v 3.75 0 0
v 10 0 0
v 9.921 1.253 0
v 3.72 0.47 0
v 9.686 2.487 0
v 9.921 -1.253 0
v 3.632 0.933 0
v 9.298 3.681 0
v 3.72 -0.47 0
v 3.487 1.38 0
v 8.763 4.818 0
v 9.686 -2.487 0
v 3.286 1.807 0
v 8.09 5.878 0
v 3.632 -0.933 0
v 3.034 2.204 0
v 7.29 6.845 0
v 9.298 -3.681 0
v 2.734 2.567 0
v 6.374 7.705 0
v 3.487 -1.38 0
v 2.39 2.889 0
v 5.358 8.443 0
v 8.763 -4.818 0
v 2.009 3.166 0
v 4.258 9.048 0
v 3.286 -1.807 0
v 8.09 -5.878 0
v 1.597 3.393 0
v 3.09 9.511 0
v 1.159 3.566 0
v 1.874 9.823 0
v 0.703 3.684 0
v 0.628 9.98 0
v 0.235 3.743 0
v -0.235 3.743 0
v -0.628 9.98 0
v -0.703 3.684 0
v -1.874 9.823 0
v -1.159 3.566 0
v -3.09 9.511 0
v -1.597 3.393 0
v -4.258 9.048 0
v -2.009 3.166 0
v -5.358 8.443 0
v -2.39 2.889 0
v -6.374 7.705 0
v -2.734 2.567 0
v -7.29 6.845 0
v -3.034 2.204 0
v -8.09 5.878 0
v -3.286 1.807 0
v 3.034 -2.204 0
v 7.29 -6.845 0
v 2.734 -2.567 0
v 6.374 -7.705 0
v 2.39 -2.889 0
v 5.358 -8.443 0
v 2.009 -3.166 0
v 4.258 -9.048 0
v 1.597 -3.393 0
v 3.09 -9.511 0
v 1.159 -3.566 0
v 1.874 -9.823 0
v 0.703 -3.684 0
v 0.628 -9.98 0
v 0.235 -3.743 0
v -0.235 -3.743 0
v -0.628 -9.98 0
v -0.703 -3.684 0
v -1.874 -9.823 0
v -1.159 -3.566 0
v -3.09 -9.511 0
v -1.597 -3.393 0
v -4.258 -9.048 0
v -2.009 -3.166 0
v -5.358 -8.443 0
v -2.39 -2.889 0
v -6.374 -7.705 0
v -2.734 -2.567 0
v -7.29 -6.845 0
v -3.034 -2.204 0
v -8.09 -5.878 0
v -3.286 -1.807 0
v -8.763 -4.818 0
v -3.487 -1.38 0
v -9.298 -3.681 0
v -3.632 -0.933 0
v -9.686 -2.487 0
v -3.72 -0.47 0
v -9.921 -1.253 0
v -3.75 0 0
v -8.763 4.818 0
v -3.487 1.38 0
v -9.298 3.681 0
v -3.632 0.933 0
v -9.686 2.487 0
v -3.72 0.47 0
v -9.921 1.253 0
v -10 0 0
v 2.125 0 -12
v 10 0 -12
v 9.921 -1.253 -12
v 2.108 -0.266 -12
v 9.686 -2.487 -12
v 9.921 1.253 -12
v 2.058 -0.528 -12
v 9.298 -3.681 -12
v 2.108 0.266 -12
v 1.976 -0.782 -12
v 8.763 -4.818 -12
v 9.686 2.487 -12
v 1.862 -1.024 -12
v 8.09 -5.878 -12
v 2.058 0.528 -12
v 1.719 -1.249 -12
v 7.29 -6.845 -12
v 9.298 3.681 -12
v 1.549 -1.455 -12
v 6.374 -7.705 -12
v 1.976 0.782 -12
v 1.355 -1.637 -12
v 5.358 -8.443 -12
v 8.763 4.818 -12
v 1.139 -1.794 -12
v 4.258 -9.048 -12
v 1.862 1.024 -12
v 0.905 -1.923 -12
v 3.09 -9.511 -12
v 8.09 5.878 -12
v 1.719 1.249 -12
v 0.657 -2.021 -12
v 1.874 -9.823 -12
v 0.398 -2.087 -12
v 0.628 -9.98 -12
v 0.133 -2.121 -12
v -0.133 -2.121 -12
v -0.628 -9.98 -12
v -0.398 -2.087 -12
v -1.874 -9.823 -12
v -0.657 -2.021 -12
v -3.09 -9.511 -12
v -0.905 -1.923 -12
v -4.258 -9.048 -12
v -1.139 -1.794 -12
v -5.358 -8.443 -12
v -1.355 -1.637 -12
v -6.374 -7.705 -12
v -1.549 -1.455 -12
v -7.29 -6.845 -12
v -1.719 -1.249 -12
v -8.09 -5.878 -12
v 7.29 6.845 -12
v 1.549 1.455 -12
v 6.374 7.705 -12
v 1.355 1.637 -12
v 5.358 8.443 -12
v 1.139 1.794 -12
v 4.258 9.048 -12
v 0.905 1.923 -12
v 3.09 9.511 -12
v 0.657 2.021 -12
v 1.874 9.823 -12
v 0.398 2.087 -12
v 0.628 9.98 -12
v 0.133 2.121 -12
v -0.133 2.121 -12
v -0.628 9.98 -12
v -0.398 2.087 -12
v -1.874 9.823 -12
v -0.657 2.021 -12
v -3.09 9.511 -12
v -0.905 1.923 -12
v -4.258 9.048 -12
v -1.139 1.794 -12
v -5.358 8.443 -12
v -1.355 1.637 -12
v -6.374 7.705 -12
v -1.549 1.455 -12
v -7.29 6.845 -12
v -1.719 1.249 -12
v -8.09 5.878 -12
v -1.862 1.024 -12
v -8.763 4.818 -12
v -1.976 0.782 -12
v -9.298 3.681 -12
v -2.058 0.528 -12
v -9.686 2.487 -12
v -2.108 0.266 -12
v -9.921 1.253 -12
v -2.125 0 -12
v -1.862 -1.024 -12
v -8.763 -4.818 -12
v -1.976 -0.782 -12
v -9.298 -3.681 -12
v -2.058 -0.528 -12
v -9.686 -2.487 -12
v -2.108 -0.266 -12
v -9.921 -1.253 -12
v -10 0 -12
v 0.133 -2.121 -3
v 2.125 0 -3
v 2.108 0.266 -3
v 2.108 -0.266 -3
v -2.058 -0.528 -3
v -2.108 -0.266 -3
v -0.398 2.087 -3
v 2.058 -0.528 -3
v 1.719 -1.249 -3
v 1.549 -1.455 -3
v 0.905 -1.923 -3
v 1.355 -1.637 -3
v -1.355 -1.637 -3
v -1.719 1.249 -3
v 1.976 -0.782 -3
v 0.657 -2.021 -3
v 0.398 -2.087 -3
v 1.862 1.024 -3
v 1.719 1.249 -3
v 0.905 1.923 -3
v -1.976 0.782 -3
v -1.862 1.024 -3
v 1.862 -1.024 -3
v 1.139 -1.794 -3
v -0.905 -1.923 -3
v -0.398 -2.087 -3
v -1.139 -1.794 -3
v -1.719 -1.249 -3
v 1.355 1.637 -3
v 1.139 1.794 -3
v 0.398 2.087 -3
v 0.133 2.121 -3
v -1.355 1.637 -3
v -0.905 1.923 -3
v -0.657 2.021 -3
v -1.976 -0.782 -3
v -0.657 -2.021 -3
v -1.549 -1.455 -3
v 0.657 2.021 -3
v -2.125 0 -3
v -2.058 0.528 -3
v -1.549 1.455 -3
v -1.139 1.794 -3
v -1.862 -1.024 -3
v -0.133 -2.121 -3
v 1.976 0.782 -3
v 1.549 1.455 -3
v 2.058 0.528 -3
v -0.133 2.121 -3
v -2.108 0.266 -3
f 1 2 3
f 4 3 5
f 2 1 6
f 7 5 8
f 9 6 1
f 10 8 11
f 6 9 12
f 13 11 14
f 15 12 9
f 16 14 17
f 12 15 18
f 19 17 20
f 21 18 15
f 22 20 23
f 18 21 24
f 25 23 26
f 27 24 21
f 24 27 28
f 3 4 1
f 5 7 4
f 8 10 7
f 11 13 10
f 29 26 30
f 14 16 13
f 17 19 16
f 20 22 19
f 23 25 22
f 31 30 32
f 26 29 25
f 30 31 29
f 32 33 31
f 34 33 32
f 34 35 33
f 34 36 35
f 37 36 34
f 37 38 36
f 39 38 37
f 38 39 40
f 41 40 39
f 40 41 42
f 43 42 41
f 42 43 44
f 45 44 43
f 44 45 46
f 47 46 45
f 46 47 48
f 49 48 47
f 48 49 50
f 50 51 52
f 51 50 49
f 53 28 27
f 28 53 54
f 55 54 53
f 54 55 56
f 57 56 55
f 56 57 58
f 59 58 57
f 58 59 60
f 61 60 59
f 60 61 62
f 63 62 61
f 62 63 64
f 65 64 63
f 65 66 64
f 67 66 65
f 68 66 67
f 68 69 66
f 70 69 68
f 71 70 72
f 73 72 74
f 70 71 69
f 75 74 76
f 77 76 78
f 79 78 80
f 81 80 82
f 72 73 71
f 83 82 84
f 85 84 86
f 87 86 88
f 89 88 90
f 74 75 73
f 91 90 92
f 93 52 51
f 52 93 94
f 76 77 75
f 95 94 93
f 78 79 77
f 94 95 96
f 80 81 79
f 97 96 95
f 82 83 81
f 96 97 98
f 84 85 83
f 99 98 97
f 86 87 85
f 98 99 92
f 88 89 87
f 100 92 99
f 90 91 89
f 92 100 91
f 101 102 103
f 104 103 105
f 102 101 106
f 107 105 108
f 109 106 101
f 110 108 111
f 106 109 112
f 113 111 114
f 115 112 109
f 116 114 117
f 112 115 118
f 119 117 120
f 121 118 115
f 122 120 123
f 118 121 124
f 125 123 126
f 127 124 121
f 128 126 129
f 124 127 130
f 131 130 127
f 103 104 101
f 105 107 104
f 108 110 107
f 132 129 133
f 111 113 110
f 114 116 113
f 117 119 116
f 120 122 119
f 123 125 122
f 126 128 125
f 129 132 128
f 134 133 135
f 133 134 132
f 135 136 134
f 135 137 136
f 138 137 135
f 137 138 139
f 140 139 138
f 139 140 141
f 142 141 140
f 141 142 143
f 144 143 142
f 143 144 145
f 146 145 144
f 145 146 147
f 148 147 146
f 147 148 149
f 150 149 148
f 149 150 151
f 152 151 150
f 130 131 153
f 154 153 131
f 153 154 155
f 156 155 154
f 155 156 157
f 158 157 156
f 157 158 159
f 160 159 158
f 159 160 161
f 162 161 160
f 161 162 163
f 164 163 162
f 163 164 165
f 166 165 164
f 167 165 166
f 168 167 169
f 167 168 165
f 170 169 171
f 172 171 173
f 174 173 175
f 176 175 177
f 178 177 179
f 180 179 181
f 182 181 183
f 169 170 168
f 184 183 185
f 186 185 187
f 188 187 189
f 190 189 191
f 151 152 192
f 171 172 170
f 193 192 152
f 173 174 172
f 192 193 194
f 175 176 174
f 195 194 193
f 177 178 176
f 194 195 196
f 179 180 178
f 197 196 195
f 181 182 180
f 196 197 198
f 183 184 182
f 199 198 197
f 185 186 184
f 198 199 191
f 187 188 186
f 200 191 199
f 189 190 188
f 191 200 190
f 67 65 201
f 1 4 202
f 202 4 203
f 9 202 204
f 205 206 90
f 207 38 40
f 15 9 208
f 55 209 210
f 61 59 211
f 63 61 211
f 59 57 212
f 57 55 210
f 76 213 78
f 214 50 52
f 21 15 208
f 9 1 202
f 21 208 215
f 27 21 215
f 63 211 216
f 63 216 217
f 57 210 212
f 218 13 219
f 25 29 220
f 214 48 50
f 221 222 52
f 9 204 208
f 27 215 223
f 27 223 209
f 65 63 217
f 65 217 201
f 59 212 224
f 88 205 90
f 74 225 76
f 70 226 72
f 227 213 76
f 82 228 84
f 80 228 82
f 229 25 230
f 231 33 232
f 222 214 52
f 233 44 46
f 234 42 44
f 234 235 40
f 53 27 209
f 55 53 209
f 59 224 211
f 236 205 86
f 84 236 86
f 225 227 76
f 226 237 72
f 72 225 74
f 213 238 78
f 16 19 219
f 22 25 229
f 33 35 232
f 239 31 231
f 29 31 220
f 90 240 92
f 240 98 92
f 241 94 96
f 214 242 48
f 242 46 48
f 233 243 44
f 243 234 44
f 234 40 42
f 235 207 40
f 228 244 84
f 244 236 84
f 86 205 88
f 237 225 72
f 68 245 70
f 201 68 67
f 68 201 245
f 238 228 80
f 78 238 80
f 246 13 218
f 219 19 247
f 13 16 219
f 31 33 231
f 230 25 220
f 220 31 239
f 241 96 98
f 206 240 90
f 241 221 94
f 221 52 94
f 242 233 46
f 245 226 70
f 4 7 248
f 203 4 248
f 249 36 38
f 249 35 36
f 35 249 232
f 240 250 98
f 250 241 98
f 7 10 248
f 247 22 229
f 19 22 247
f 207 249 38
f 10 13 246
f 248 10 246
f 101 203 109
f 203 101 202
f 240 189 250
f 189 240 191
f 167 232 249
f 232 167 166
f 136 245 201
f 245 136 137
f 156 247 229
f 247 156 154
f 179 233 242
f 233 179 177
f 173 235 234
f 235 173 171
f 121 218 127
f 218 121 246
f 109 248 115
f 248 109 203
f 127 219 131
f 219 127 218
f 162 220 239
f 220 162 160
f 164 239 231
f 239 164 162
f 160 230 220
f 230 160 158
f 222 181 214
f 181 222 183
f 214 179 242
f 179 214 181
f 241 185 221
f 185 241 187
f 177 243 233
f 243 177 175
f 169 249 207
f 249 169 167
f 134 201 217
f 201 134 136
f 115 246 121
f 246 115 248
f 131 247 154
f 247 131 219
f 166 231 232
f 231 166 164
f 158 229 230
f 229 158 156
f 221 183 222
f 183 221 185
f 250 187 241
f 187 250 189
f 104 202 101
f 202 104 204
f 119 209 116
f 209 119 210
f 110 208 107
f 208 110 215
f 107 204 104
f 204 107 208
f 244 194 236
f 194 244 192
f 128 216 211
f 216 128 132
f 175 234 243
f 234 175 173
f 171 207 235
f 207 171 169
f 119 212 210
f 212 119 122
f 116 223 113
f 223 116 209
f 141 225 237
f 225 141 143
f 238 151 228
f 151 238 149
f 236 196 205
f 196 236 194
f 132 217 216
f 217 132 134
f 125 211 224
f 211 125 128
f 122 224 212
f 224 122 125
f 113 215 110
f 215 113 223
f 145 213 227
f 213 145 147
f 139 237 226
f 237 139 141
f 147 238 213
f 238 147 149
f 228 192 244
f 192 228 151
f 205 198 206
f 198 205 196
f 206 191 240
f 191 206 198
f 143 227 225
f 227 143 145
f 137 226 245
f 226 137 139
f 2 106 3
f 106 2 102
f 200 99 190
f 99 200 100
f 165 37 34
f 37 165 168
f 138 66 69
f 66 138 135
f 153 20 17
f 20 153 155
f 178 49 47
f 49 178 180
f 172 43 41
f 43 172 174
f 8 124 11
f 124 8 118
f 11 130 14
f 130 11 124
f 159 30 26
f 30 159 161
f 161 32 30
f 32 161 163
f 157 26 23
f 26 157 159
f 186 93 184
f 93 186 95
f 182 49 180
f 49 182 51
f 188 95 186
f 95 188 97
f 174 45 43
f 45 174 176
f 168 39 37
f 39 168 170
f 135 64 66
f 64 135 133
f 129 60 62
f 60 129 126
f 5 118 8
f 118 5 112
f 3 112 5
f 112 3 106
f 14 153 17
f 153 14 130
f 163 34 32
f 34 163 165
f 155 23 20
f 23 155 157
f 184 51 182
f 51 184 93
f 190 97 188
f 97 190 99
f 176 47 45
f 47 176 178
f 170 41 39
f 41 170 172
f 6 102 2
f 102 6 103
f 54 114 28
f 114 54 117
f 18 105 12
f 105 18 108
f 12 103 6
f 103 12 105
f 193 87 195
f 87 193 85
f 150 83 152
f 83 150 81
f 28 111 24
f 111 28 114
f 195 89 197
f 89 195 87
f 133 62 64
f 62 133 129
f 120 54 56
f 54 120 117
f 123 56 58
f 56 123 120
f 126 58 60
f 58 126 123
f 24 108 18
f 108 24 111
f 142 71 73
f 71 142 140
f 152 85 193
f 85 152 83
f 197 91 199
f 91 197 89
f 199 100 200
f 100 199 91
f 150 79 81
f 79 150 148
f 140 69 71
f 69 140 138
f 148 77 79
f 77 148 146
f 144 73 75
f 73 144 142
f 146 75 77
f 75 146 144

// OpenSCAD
$fn = 50;


difference() {
	union() {
		translate(v = [0, 0, -12.0000000000]) {
			cylinder(h = 12, r = 10.0000000000);
		}
		cylinder(h = 0, r = 16.0000000000);
	}
	union() {
		translate(v = [0, 0, 0]) {
			rotate(a = [0, 0, 0]) {
				difference() {
					union() {
						#translate(v = [0, 0, -12.0000000000]) {
							cylinder(h = 12, r = 2.0000000000);
						}
						#translate(v = [0, 0, -3]) {
							cylinder(h = 3, r = 10.0000000000, r1 = 2.1250000000, r2 = 3.7500000000);
						}
						#translate(v = [0, 0, -12.0000000000]) {
							cylinder(h = 12, r = 2.1250000000);
						}
						#translate(v = [0, 0, -12.0000000000]) {
							cylinder(h = 12, r = 2.0000000000);
						}
					}
					union();
				}
			}
		}
	}
}
